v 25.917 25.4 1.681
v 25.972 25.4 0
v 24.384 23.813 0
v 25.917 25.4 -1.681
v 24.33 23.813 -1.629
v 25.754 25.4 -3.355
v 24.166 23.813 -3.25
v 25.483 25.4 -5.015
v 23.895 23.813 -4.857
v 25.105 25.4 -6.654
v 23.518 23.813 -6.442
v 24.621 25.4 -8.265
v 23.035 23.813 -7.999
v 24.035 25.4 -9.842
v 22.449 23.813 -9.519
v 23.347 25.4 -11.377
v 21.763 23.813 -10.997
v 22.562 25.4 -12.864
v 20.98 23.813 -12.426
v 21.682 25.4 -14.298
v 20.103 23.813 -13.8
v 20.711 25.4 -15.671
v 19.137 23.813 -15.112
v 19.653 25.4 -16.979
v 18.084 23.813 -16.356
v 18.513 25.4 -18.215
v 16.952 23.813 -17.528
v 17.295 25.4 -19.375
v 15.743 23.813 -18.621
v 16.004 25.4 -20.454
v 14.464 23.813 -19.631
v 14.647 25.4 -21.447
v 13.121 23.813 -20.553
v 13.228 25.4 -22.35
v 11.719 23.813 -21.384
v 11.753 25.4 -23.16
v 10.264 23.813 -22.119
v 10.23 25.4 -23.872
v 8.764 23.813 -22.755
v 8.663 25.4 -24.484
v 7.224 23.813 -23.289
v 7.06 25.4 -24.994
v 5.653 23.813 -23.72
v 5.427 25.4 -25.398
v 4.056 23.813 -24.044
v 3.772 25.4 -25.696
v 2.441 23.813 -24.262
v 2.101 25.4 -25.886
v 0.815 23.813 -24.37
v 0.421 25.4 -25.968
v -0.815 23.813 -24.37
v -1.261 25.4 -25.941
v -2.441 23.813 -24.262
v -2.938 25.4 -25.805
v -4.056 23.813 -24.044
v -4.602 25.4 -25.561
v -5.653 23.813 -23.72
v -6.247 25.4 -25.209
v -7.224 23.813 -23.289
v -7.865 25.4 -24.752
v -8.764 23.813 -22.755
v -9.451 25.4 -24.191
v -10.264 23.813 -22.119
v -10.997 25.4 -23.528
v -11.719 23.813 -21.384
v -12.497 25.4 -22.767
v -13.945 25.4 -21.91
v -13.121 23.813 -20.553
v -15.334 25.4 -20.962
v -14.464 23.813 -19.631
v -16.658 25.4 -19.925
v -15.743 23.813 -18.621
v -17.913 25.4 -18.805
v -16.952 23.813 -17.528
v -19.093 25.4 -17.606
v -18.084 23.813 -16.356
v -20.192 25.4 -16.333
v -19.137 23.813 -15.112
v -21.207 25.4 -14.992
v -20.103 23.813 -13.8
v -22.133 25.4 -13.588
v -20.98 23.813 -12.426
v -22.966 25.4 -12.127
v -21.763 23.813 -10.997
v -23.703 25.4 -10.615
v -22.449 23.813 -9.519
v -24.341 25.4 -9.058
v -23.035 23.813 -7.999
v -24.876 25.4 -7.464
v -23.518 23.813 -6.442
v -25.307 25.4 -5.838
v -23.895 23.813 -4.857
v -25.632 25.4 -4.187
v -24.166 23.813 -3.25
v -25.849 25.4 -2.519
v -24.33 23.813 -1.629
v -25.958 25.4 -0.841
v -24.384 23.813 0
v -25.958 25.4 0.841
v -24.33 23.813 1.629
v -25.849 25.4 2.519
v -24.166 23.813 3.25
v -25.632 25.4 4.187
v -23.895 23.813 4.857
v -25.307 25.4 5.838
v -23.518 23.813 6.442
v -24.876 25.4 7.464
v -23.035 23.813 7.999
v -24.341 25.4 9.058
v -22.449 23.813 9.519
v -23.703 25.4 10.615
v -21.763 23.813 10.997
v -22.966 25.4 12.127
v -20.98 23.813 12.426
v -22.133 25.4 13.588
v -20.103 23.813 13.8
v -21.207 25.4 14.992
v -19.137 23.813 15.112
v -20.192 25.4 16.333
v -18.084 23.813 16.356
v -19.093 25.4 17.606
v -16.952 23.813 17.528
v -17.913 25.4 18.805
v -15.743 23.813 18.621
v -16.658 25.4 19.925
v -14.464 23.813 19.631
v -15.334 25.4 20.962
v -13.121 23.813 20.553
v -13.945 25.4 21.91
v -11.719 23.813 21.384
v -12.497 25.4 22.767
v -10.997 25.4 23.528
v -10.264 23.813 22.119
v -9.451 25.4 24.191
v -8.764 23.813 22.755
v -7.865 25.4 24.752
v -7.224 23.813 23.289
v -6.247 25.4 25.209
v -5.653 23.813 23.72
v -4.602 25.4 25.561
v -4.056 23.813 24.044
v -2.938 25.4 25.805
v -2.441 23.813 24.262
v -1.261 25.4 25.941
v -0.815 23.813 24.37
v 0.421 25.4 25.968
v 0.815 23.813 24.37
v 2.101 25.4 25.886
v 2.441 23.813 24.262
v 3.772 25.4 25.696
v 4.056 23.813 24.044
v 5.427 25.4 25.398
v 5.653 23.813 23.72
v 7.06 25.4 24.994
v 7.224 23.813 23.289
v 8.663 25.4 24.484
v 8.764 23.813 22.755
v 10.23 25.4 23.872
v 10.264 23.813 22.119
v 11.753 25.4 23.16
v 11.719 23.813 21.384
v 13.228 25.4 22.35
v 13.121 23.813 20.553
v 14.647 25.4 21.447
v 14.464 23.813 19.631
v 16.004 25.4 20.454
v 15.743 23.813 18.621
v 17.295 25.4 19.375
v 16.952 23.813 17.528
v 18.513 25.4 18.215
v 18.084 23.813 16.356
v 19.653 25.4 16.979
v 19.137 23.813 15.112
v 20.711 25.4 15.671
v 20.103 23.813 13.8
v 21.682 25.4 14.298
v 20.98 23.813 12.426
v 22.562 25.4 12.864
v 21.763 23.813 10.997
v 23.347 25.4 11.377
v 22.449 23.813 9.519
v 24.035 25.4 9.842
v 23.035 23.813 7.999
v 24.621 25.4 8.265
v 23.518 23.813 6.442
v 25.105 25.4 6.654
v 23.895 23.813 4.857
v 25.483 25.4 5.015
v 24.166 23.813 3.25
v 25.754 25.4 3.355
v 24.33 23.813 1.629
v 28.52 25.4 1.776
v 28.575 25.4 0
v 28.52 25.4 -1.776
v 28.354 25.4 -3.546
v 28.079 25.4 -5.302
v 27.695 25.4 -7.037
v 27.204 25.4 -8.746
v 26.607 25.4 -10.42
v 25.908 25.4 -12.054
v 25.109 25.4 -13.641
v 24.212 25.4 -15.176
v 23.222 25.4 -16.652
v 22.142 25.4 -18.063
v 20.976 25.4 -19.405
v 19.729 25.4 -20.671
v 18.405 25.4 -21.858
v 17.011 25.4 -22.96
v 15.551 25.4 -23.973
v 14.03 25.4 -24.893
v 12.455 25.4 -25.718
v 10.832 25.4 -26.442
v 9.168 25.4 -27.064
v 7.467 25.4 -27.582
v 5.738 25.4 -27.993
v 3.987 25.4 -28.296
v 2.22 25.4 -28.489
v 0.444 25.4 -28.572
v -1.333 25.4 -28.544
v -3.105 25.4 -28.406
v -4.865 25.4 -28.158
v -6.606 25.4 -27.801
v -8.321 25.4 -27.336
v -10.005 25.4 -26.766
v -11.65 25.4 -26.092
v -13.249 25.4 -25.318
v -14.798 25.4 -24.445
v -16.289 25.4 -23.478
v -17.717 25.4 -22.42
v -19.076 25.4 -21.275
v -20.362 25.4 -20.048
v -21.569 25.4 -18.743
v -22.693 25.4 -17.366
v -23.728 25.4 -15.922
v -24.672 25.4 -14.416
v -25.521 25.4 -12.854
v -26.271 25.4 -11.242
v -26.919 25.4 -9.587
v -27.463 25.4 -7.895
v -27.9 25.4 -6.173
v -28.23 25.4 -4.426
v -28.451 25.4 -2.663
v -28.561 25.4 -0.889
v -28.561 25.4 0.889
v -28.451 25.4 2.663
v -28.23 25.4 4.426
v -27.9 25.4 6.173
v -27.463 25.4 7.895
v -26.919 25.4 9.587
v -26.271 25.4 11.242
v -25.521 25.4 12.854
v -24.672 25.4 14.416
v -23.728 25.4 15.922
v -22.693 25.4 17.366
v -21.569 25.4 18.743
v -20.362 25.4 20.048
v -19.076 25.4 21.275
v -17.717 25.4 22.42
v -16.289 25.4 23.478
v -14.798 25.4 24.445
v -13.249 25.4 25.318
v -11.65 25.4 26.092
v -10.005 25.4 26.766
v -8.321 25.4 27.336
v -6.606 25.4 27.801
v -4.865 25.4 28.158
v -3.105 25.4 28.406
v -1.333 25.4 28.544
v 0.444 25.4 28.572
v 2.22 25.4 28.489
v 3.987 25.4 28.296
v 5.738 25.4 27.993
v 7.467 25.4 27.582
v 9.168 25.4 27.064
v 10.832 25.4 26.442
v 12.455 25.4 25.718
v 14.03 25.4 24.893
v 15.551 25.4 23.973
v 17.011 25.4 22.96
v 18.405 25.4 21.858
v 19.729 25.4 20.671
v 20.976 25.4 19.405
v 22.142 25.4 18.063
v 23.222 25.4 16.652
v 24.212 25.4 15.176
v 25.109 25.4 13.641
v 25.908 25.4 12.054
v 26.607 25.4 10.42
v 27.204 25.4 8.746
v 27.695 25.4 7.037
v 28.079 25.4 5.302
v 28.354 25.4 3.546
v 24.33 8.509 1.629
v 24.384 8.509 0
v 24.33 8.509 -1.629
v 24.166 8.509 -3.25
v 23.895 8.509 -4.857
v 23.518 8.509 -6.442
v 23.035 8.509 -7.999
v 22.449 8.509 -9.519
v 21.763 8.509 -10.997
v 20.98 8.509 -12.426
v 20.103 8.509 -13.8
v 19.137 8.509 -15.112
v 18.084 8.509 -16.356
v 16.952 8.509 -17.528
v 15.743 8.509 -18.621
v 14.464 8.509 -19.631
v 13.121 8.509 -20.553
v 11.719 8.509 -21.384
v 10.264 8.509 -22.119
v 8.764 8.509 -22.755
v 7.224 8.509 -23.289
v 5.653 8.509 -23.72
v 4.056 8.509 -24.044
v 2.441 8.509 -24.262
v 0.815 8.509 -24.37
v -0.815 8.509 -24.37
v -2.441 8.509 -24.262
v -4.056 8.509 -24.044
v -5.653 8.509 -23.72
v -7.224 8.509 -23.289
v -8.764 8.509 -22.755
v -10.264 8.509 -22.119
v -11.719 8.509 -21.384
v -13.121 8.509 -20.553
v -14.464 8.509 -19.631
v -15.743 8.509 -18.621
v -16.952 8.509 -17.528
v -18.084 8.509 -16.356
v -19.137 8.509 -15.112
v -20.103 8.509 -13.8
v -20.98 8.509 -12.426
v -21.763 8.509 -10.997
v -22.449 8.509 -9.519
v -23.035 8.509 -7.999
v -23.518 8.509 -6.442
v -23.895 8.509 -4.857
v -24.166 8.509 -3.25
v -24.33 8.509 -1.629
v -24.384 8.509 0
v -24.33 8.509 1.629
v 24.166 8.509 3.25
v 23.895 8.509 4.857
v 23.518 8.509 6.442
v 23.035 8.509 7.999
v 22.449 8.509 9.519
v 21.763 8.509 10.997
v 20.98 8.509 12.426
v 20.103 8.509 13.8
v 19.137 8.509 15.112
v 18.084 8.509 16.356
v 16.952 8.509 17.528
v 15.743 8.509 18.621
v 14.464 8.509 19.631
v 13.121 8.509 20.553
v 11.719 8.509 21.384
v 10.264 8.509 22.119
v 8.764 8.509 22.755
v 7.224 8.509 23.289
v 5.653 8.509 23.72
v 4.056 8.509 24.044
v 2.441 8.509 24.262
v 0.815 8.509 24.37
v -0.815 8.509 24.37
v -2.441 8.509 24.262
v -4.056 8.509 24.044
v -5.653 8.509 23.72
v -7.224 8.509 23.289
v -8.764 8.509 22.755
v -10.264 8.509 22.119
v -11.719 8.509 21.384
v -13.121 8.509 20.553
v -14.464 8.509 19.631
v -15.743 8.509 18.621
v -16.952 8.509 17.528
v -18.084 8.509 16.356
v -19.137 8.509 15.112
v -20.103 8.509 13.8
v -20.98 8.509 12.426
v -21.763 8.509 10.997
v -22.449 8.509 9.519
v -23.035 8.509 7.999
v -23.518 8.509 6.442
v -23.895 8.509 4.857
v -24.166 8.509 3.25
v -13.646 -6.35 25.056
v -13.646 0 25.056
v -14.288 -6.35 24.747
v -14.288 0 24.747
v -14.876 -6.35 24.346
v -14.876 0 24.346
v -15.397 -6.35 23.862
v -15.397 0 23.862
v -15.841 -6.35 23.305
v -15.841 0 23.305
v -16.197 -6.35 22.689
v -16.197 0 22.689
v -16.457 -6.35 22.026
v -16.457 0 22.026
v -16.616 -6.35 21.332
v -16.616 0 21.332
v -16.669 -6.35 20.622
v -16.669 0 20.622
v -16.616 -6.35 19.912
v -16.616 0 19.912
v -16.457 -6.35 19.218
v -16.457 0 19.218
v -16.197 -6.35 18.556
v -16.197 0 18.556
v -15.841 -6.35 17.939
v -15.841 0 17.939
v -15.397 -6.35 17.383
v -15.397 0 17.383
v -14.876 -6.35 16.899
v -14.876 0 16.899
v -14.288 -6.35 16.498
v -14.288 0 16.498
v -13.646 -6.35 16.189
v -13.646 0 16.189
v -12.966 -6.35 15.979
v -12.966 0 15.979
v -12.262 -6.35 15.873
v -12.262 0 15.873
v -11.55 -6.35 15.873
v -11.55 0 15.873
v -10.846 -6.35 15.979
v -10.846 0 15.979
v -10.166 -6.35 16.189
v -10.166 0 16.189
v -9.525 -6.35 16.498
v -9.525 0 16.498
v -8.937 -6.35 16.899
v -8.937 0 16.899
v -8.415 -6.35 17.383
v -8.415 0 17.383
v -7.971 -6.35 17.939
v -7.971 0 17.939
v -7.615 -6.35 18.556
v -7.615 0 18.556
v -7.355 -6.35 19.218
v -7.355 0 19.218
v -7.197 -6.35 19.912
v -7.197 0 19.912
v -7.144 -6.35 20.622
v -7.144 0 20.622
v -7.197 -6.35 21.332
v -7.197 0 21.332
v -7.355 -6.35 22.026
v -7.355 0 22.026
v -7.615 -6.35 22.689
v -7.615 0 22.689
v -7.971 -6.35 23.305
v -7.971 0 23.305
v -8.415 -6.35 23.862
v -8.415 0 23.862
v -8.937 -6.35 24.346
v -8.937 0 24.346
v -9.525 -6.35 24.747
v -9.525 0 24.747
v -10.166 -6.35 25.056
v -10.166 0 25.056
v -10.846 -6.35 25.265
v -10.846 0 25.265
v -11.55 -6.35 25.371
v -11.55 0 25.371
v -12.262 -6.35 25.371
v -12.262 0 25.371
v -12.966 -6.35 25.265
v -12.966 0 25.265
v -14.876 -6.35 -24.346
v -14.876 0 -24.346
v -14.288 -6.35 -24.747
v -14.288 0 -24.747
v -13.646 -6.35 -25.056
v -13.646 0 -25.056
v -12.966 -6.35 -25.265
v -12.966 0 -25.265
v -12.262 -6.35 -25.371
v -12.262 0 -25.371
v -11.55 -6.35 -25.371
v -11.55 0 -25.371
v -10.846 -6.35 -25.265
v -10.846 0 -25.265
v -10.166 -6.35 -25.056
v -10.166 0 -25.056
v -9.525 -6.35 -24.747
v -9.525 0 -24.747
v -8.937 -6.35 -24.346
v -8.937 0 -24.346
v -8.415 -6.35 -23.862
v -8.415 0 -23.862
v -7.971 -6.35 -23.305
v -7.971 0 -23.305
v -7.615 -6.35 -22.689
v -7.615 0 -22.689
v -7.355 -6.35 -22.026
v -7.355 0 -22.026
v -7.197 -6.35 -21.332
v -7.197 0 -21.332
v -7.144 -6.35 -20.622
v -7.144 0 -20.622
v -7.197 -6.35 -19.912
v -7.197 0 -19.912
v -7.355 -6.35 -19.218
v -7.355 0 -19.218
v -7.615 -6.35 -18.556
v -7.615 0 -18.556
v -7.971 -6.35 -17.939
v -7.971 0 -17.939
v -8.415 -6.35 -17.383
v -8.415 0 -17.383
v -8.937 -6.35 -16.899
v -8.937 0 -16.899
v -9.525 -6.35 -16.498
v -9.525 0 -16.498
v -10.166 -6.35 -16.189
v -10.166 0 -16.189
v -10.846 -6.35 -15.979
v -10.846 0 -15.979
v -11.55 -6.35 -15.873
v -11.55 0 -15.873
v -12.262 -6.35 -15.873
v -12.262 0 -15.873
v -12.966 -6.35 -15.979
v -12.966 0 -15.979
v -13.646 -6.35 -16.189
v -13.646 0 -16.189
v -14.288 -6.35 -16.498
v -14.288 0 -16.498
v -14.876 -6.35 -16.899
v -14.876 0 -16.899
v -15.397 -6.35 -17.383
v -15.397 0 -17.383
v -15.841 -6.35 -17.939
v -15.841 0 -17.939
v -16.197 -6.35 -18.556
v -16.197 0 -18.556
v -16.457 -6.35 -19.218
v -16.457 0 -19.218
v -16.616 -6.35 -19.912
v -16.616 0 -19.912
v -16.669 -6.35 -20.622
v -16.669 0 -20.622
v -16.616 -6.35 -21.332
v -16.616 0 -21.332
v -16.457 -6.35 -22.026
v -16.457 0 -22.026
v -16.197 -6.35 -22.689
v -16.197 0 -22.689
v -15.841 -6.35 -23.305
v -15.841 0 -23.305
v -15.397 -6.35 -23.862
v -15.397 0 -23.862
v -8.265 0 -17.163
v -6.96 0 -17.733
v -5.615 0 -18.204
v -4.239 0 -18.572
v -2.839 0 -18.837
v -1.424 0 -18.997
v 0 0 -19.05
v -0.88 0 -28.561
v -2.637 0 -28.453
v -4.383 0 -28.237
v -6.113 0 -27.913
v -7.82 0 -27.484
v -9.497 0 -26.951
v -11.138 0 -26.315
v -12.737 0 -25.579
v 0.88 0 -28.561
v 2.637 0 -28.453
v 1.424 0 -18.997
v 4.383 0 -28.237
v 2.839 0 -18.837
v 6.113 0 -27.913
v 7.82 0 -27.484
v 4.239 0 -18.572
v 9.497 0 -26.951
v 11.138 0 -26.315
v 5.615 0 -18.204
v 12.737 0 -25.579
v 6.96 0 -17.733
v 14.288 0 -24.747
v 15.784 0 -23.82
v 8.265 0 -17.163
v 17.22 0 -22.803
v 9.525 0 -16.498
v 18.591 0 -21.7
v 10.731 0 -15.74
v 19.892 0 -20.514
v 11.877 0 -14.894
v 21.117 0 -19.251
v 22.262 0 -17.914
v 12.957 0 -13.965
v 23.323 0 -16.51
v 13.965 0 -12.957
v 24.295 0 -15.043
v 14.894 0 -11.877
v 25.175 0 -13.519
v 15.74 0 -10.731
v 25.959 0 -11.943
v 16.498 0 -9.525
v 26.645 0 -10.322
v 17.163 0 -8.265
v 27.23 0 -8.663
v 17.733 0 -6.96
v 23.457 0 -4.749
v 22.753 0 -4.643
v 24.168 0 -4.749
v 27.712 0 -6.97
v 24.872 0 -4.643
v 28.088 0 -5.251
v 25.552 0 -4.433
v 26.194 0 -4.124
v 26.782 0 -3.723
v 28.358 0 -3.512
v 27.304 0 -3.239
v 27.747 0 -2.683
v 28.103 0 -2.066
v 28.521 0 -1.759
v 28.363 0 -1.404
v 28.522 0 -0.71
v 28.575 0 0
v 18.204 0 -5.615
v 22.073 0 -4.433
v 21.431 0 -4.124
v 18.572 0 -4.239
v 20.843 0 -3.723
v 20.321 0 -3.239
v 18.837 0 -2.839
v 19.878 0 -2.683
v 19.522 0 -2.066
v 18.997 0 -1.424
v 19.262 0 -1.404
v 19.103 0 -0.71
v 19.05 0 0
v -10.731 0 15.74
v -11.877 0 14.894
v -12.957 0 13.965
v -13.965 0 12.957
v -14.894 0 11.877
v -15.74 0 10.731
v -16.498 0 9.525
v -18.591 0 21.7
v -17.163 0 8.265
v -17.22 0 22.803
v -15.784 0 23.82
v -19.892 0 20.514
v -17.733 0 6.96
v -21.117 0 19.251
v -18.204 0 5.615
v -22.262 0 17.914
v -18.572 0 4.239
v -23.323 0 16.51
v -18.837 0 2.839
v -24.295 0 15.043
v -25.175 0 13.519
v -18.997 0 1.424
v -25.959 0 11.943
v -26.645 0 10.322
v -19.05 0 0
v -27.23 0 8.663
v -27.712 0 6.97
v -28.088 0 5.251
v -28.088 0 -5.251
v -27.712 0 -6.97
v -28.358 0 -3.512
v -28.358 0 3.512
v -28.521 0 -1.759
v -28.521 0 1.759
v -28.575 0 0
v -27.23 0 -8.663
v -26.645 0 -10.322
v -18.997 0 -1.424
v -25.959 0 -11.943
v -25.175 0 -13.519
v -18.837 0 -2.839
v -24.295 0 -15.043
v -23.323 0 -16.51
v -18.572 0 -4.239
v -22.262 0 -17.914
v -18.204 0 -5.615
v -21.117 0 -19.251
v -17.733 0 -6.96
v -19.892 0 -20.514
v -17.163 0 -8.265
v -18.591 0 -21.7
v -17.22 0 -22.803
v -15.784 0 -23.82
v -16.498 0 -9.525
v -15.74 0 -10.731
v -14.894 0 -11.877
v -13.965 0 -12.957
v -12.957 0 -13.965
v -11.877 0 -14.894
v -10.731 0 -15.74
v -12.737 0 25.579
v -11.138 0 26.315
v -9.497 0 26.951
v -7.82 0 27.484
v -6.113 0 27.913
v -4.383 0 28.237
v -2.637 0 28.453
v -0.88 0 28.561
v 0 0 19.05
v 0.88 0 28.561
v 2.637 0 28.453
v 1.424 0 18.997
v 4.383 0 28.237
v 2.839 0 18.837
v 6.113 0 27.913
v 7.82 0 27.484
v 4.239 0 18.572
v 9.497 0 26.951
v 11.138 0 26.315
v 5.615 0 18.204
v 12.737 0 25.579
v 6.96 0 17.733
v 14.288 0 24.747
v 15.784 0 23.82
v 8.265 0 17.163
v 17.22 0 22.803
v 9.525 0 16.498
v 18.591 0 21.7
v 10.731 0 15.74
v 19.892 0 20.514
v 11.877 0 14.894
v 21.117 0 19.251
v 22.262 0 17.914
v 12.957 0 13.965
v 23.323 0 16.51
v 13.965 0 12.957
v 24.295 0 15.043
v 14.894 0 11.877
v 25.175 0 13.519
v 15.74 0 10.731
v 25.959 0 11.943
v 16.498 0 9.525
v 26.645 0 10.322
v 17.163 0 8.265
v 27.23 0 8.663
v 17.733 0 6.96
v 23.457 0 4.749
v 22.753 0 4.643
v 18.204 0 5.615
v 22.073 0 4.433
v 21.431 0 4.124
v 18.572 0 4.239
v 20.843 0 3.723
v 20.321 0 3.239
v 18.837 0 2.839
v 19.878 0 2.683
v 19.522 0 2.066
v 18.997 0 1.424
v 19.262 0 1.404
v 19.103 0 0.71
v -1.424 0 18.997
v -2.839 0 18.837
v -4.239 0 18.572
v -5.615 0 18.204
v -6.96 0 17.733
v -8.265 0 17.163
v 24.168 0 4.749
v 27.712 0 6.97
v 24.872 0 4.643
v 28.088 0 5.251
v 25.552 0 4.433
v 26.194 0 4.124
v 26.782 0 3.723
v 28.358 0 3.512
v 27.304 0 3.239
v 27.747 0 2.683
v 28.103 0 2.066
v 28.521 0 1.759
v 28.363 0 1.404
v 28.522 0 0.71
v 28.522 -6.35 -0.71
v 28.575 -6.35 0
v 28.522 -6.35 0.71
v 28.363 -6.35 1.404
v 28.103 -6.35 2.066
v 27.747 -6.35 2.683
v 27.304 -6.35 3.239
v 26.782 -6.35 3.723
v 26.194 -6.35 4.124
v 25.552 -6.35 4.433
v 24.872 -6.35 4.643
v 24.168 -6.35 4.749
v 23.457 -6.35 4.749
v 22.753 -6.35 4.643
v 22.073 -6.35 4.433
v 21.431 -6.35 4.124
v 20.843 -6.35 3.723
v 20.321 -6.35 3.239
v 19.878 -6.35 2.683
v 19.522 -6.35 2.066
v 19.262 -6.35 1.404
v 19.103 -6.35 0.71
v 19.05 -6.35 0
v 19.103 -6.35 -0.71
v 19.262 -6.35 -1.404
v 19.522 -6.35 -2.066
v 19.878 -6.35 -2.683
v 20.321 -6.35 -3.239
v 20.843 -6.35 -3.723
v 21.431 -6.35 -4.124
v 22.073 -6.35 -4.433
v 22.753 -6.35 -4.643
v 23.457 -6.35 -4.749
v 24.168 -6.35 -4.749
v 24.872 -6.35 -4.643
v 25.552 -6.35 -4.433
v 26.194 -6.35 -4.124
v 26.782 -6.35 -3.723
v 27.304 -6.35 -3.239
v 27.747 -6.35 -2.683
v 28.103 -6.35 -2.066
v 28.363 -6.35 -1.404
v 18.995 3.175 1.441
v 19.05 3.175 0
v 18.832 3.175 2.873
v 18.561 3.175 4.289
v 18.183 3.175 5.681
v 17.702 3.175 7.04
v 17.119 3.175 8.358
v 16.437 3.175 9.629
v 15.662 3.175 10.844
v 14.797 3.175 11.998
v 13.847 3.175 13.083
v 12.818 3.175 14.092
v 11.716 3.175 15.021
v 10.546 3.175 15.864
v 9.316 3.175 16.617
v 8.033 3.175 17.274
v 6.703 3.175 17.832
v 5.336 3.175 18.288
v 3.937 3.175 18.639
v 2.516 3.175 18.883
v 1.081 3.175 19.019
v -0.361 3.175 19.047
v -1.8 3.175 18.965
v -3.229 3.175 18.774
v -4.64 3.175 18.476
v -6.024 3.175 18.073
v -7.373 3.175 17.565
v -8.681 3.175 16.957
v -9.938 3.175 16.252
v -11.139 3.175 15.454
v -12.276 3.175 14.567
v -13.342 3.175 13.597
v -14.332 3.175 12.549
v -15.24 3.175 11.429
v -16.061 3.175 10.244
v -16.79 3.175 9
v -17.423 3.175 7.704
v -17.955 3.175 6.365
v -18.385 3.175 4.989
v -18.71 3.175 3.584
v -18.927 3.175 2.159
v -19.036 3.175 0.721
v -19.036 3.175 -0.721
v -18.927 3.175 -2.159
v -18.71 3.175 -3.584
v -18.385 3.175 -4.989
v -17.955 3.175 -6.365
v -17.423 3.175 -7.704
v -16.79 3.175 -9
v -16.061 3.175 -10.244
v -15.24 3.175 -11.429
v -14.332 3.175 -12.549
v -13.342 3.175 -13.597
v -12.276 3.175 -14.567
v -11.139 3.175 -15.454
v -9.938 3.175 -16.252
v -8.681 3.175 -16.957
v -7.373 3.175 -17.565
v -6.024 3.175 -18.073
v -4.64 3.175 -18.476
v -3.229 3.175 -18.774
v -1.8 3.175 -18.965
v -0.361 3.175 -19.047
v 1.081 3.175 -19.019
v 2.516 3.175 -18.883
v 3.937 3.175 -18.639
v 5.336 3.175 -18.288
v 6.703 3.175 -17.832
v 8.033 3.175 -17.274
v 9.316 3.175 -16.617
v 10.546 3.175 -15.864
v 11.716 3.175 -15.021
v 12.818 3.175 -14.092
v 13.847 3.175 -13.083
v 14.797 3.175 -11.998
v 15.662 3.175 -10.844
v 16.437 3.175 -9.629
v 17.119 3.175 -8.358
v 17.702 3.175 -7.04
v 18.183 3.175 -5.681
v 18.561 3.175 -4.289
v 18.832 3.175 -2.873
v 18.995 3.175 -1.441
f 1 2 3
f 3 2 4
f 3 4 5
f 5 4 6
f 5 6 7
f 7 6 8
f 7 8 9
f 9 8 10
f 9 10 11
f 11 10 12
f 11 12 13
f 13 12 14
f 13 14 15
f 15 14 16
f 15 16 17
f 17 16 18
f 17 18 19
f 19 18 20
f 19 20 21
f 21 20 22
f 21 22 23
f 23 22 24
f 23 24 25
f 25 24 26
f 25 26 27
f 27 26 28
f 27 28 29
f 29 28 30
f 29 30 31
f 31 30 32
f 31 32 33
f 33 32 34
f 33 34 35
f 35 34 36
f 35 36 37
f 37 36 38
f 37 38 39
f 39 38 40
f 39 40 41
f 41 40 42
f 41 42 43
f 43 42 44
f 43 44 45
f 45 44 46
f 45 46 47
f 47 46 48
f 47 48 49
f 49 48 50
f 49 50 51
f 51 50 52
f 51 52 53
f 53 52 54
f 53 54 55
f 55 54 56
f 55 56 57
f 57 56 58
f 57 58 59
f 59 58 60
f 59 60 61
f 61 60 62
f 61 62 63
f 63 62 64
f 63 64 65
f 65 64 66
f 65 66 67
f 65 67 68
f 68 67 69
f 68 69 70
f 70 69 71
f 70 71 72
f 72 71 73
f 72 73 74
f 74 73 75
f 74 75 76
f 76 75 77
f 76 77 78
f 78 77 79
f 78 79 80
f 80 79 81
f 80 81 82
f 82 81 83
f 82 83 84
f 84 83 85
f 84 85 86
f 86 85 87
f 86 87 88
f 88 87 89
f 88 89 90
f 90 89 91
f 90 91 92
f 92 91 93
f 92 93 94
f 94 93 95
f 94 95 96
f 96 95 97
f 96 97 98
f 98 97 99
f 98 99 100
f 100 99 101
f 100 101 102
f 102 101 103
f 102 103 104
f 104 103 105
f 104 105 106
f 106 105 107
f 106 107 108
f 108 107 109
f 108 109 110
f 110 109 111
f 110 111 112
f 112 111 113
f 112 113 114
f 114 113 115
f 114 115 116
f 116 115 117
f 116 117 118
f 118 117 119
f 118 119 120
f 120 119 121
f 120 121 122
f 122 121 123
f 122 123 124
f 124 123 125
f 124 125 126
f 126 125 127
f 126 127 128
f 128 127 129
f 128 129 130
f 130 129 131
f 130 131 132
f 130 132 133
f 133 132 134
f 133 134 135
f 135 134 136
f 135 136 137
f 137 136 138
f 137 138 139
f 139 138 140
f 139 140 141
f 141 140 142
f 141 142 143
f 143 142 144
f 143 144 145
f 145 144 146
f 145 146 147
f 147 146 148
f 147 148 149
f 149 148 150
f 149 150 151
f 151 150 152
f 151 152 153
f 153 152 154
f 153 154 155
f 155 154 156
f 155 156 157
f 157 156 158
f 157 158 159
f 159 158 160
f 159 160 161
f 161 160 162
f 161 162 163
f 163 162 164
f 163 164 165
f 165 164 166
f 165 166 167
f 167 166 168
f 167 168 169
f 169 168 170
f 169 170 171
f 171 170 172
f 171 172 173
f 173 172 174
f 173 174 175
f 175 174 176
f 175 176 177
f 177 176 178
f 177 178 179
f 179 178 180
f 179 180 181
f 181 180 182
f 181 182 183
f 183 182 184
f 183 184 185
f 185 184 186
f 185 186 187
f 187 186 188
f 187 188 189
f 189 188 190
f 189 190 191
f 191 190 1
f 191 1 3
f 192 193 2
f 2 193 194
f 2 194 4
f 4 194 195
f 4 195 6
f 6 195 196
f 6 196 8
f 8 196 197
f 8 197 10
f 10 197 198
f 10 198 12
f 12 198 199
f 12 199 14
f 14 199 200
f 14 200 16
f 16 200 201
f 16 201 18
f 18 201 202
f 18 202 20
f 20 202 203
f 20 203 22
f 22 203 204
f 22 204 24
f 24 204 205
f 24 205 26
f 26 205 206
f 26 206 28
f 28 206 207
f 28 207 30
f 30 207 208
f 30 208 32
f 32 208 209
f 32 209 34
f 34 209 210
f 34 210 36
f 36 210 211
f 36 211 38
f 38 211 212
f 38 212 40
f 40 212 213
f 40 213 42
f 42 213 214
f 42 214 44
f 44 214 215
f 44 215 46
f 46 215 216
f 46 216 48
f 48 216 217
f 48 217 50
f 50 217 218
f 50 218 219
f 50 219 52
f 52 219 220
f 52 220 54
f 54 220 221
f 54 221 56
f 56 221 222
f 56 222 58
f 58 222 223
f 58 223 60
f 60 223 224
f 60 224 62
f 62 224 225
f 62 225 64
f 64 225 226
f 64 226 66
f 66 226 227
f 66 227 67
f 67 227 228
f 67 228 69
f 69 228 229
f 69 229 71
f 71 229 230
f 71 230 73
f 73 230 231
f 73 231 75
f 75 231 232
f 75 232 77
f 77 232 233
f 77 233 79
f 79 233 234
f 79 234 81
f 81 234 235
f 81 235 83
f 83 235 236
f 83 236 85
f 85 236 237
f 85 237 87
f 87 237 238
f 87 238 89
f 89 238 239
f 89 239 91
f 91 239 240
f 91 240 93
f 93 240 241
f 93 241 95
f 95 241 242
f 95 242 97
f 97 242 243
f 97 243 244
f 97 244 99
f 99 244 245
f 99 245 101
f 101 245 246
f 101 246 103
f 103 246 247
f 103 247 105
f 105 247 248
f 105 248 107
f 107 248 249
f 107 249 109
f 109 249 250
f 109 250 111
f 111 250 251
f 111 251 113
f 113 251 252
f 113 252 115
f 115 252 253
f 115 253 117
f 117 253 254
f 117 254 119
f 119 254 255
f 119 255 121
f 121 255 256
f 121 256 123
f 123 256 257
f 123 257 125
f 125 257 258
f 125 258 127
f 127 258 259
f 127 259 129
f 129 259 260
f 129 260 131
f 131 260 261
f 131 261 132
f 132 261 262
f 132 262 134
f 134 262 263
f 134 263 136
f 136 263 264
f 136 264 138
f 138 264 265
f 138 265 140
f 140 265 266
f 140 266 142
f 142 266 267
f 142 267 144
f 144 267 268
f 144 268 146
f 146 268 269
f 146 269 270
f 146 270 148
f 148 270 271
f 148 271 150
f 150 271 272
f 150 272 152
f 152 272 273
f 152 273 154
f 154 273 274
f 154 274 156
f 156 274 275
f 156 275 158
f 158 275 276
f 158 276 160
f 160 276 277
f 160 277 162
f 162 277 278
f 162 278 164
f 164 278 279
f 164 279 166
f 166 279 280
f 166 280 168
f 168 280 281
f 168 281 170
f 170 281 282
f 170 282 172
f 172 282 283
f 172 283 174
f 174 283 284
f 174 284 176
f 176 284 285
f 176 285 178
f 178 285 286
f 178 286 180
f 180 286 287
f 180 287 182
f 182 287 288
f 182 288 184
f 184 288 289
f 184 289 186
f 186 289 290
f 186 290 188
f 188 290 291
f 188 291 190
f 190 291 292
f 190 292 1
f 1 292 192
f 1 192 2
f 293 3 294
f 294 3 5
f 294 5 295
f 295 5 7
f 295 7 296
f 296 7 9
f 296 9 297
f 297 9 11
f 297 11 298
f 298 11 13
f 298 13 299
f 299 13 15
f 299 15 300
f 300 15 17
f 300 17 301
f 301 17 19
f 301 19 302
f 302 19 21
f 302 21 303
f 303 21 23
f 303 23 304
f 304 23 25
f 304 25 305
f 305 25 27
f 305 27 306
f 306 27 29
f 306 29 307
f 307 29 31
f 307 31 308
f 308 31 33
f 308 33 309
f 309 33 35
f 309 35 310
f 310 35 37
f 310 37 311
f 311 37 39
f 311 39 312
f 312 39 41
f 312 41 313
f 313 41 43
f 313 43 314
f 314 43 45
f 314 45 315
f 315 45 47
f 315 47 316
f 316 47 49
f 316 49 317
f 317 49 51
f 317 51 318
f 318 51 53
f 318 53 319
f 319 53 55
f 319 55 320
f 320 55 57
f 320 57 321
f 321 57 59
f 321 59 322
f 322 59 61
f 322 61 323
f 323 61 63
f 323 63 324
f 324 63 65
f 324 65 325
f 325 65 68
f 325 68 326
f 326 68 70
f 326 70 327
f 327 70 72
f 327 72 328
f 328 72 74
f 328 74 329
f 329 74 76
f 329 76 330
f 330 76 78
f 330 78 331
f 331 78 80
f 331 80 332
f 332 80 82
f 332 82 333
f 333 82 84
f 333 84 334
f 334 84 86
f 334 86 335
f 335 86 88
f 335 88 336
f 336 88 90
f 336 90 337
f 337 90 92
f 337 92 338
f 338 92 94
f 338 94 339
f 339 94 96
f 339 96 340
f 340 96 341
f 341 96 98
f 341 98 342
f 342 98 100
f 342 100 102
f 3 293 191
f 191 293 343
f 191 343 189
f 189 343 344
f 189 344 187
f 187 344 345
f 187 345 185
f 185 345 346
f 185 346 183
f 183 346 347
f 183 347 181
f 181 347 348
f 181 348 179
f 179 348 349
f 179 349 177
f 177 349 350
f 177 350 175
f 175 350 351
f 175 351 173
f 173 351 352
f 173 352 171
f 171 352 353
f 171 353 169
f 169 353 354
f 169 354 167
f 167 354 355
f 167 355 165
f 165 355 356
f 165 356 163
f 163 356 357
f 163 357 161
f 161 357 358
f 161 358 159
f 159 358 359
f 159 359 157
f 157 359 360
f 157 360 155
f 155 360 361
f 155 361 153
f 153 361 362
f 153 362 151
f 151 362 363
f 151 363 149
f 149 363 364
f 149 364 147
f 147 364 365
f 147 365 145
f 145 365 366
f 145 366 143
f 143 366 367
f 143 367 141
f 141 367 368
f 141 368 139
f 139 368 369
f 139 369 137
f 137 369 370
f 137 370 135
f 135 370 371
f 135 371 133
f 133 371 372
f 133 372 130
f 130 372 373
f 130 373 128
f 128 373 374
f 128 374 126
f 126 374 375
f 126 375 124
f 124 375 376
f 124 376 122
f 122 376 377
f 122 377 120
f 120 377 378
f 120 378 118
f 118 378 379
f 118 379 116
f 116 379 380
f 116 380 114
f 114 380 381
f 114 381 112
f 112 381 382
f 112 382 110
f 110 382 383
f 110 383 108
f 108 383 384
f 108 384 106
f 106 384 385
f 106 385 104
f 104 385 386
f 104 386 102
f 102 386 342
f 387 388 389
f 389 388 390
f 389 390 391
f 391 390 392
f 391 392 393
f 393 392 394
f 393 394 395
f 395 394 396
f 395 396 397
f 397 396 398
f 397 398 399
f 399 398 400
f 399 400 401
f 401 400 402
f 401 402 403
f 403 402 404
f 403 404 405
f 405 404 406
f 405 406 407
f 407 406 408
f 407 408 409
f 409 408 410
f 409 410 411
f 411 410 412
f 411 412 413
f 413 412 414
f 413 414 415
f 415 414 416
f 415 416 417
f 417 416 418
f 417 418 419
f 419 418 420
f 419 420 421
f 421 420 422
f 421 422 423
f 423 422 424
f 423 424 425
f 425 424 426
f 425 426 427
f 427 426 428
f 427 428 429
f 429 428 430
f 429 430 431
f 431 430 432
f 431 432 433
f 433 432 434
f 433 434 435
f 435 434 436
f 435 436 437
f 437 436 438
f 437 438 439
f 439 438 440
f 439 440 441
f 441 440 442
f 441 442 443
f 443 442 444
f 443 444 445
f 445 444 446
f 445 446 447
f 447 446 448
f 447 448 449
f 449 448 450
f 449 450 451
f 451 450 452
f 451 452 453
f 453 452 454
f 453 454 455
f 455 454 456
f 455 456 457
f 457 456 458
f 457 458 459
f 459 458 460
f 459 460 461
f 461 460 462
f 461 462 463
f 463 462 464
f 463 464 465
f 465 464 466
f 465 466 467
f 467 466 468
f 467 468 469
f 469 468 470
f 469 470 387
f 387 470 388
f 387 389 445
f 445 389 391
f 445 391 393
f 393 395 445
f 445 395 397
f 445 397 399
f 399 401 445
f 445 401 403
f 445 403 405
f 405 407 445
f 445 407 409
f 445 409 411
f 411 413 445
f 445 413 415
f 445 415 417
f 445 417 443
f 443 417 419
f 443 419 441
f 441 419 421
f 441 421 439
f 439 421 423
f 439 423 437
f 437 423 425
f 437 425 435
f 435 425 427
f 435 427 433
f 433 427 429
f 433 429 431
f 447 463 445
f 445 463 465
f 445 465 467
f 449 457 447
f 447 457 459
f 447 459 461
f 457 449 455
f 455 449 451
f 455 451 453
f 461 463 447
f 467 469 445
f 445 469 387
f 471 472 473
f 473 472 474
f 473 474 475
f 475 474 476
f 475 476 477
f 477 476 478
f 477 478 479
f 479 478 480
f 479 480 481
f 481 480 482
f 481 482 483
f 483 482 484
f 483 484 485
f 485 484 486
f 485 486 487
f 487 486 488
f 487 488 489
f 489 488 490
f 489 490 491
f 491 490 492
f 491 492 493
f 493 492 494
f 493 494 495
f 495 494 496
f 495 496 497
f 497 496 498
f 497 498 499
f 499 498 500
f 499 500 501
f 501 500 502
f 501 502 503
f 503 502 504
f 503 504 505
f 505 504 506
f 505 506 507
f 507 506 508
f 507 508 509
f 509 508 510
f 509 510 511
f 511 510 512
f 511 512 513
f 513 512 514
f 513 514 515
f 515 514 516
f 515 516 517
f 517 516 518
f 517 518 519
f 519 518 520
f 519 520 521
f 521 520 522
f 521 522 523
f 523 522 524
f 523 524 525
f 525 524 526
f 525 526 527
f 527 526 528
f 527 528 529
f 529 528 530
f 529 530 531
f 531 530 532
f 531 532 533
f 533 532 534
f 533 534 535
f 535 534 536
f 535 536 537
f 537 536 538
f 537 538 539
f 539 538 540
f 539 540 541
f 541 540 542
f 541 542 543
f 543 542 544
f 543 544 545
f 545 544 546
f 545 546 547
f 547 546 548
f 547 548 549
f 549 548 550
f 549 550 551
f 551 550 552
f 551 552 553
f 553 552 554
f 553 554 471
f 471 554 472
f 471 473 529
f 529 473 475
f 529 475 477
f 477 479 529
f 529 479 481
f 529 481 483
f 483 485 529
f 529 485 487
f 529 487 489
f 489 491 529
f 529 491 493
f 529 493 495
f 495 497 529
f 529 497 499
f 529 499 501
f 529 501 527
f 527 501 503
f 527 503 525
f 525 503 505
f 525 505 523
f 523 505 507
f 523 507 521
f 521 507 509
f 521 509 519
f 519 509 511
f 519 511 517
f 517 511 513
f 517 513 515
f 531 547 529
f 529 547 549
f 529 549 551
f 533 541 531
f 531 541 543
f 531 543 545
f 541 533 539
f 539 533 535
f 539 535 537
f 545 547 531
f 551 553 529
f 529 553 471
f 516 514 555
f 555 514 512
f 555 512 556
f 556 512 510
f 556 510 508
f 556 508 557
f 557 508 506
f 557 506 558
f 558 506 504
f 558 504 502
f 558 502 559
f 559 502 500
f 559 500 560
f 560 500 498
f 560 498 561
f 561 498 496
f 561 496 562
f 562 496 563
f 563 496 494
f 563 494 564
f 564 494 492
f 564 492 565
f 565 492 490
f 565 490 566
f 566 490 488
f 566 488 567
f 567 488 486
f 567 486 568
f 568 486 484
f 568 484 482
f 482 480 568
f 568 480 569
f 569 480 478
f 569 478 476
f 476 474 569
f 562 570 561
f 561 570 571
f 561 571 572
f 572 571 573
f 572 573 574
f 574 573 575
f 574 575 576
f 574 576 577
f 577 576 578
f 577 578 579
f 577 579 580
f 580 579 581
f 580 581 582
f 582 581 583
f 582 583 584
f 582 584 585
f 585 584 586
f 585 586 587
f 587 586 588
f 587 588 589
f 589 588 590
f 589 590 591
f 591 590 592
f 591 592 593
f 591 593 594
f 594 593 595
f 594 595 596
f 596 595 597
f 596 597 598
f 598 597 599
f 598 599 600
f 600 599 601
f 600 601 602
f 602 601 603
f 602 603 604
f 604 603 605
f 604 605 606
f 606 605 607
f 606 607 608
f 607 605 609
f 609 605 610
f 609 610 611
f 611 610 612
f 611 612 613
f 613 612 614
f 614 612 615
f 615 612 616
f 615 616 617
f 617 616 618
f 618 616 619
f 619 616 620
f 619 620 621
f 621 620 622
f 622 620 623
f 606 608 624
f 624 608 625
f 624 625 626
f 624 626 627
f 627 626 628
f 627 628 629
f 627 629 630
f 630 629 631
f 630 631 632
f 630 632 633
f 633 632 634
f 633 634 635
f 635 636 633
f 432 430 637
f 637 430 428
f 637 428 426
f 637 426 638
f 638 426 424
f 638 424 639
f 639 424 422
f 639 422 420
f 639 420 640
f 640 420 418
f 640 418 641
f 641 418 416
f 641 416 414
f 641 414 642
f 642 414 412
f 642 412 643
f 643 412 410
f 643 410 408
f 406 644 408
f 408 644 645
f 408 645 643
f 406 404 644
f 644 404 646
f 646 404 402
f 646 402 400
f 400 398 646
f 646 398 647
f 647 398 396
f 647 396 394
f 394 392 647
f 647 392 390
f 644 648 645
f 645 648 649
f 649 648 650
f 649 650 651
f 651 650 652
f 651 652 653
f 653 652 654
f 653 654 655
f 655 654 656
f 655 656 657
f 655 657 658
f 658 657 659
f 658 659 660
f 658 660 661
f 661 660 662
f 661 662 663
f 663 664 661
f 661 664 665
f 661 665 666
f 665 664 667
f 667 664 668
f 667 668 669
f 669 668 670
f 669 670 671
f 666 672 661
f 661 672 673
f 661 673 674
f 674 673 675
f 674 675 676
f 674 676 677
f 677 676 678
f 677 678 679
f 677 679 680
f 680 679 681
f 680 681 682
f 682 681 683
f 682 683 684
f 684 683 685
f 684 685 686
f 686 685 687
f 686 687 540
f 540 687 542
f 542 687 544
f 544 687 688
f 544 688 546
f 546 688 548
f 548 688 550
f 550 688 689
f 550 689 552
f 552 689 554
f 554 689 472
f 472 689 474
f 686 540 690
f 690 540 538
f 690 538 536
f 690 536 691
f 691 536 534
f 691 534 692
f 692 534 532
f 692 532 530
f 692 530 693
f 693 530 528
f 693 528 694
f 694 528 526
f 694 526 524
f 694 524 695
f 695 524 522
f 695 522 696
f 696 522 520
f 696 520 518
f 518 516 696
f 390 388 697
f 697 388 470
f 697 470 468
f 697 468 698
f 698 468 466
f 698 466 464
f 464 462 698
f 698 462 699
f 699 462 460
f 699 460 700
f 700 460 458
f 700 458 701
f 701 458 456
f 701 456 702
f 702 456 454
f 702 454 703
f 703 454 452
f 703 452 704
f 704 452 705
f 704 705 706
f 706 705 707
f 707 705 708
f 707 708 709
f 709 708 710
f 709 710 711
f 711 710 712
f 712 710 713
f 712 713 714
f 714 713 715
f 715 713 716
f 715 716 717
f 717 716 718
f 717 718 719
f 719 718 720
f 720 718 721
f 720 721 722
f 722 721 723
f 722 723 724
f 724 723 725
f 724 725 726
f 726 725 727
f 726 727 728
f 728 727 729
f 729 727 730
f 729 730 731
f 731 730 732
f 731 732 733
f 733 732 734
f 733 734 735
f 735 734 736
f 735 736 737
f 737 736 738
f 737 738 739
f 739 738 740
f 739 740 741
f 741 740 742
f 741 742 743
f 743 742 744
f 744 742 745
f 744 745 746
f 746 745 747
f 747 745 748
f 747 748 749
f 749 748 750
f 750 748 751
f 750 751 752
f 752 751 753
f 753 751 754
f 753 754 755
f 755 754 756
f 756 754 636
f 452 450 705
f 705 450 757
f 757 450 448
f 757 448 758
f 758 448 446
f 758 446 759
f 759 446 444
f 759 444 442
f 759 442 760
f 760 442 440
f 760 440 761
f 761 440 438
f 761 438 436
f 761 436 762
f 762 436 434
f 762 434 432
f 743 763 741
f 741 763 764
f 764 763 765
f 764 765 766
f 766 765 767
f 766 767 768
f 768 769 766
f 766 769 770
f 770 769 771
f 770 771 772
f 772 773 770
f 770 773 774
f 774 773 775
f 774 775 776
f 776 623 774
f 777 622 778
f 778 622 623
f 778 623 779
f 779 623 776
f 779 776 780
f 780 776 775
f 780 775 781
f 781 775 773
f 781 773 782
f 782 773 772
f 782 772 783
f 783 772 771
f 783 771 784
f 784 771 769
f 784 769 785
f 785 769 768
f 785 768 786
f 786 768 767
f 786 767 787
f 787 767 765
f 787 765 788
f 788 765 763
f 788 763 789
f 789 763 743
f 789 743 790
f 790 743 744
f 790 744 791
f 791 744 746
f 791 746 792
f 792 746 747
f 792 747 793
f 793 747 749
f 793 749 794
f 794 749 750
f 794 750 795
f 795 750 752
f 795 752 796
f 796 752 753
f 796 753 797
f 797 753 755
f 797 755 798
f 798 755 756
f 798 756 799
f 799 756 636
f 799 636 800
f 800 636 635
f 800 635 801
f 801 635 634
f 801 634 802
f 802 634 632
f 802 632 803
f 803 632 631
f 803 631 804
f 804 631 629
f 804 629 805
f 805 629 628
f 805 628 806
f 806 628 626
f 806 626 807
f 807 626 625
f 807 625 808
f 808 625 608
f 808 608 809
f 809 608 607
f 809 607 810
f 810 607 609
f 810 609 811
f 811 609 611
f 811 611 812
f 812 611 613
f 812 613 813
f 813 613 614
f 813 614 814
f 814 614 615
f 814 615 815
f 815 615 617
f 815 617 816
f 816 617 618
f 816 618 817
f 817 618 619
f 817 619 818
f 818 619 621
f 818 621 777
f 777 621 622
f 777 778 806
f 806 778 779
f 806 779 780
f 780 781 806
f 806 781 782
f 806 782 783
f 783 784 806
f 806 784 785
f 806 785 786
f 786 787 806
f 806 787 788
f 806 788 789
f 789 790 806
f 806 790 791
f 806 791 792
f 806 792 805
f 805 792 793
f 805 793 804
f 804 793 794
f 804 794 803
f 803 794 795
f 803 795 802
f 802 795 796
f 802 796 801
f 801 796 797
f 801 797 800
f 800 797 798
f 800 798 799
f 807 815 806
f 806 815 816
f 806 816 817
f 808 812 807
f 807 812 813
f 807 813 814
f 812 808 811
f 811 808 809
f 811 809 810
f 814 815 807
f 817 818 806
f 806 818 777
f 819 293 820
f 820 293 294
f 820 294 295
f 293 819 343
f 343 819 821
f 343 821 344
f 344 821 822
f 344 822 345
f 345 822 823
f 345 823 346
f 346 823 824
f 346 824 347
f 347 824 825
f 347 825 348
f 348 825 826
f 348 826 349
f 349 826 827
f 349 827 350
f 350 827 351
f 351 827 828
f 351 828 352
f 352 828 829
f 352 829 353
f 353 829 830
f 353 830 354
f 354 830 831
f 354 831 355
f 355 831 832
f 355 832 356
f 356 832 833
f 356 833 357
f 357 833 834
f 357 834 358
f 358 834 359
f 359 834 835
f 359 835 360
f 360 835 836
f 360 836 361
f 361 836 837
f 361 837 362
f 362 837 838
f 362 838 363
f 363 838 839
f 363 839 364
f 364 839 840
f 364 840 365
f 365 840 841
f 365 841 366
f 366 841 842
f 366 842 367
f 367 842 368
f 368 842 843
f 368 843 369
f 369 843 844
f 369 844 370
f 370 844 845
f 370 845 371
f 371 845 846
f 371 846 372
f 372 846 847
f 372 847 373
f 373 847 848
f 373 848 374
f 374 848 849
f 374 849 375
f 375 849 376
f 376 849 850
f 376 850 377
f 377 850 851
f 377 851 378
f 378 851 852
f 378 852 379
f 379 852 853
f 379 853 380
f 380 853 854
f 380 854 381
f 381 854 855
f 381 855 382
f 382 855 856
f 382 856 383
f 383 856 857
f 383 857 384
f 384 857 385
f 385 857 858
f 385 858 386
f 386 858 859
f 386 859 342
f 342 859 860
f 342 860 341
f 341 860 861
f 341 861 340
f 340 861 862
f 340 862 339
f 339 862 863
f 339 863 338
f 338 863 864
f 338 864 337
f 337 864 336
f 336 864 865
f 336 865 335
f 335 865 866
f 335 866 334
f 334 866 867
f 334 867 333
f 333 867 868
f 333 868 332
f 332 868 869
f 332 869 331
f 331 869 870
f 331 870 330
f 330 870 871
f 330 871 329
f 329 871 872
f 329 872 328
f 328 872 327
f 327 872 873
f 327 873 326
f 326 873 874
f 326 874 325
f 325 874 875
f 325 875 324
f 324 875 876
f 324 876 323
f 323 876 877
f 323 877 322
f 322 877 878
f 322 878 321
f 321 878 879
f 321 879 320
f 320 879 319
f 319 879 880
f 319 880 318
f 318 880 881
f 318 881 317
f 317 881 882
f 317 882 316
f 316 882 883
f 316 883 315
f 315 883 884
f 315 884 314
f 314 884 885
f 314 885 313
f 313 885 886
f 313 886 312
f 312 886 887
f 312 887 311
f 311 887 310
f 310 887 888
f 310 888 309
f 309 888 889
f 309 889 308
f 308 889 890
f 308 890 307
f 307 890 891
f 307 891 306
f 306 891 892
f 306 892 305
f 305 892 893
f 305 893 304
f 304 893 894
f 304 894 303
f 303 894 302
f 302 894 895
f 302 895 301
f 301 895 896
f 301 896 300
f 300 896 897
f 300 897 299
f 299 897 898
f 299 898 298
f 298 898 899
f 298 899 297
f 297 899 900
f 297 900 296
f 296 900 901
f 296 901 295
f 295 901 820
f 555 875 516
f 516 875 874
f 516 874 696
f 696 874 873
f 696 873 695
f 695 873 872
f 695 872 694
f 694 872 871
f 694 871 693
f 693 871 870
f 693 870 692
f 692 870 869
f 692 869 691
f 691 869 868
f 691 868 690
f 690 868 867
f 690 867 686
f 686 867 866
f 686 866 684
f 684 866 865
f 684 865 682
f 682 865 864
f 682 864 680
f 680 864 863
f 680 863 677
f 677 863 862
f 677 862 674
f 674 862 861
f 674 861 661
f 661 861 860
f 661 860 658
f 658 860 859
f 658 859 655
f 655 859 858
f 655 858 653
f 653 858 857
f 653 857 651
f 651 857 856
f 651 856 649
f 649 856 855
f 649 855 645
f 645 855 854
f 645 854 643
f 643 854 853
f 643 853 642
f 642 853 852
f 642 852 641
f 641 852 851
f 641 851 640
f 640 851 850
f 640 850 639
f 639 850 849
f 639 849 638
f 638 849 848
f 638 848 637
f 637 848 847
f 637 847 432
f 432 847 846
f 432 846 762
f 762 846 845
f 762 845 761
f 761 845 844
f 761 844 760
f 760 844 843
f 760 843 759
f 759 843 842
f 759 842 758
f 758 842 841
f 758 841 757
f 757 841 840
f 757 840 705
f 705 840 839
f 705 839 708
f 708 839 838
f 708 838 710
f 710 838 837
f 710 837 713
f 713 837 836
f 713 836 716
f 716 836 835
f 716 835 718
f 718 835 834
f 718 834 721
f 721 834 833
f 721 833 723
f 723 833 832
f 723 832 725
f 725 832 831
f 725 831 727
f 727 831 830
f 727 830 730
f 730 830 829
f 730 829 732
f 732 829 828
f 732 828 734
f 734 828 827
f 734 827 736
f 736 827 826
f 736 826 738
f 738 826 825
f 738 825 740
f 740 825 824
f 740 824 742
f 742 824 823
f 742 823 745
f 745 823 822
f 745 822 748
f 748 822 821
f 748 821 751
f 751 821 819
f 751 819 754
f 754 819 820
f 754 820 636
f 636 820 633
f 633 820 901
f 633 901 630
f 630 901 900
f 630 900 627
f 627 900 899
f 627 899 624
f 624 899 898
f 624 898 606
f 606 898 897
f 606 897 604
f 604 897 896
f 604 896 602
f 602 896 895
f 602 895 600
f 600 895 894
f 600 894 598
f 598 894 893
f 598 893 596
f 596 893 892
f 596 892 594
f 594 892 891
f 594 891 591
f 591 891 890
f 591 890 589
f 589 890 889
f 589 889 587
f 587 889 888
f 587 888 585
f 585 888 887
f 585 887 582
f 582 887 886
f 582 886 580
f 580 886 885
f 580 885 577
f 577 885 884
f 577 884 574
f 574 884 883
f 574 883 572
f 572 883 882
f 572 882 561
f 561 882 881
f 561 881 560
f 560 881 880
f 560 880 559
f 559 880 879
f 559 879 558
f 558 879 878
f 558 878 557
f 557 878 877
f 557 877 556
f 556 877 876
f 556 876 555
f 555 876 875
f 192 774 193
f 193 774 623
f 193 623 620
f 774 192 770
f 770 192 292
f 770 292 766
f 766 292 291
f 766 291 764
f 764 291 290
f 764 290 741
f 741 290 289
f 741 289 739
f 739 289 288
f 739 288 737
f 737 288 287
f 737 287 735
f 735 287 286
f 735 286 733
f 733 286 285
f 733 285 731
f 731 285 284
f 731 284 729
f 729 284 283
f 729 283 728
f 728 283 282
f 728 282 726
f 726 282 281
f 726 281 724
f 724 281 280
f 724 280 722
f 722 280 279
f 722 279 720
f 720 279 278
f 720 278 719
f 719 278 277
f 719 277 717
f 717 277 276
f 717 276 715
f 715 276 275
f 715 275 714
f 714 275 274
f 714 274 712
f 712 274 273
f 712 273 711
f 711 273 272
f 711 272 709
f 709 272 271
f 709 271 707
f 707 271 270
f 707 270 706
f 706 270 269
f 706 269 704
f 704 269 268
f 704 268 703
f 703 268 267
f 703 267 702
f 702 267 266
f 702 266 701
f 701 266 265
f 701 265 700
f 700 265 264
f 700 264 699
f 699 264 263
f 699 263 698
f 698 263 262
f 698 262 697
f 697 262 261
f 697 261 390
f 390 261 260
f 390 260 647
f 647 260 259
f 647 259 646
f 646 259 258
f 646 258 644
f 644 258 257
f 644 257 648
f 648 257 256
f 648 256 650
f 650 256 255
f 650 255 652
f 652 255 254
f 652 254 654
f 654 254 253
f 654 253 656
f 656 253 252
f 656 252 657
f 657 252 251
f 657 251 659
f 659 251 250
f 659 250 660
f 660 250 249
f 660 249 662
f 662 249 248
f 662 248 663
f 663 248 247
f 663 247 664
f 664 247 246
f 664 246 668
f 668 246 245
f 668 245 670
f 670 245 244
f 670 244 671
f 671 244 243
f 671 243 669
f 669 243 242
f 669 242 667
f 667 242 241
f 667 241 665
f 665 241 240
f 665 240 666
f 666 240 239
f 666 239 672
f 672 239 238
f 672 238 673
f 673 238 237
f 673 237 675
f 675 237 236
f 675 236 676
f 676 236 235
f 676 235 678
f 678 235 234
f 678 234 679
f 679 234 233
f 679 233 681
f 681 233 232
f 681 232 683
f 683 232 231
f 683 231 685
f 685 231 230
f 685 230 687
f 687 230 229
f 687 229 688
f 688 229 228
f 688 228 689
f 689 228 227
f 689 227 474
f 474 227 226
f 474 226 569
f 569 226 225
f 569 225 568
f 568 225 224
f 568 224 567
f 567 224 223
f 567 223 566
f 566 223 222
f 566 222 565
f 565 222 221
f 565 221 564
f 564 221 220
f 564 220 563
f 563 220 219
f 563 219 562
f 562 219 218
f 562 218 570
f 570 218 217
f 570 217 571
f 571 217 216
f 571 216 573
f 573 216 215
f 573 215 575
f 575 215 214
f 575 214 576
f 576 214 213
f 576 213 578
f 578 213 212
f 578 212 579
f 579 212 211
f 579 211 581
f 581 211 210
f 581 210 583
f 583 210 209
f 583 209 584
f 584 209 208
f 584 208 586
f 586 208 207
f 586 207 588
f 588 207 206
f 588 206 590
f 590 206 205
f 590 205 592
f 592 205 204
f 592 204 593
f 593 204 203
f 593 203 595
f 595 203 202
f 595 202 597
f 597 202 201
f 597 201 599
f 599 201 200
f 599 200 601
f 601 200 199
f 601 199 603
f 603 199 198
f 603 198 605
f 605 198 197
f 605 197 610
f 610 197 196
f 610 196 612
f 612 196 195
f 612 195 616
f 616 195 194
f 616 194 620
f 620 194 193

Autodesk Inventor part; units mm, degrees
ref_plane "YZ Plane" through (0, 0, 0) normal (1, 0, 0) x (0, 1, 0)
ref_plane "XZ Plane" through (0, 0, 0) normal (0, 1, 0) x (-1, 0, 0)
ref_plane "XY Plane" through (0, 0, 0) normal (0, 0, 1) x (1, 0, 0)
sketch "Sketch1" plane through (0, 0, 0) normal (0, 0, 1) x (1, 0, 0)
  line L0 (19.05, 0) -> (28.575, 0)
  line L1 (28.575, 0) -> (28.575, 25.4)
  line L2 (28.575, 25.4) -> (24.384, 25.4)
  line L3 (24.384, 25.4) -> (24.384, 8.509)
  line L4 (24.384, 8.509) -> (19.05, 3.175)
  line L5 (19.05, 3.175) -> (19.05, 0)
  line L6 (0, -5.08) -> (0, 30.48) projected
  point P0 (0, 0)
  point P1 (24.384, 16.9545)
  dimension "d0" = 135
  dimension "d1" = 24.384
  dimension "d2" = 28.575
  dimension "d3" = 25.4
  dimension "d4" = 3.175
  dimension "d5" = 19.05
revolve "Revolution1" add sketch "Sketch1" angle 360 about axis through (0, -10, 0) along (0, 1, 0)
sketch "Sketch2" plane through (0, 0, 0) normal (0, -1, 0) x (1, 0, 0)
  circle A0 centre (0, 0) radius 28.575 construction
  circle A1 centre (0, 0) radius 19.05 construction
  circle A2 centre (23.8125, 0) radius 4.7625
extrude "Extrusion1" add sketch "Sketch2" along normal blind 6.35
pattern_circular "Circular Pattern1" count 3 over 360 about axis through (0, 12.7, 0) along (0, 1, 0) of "Extrusion1"
chamfer "Chamfer1" distance 1.5875 angle 45 1 edges at (-24.384, 25.4, 0)
properties part number "Base_3DPrint"
